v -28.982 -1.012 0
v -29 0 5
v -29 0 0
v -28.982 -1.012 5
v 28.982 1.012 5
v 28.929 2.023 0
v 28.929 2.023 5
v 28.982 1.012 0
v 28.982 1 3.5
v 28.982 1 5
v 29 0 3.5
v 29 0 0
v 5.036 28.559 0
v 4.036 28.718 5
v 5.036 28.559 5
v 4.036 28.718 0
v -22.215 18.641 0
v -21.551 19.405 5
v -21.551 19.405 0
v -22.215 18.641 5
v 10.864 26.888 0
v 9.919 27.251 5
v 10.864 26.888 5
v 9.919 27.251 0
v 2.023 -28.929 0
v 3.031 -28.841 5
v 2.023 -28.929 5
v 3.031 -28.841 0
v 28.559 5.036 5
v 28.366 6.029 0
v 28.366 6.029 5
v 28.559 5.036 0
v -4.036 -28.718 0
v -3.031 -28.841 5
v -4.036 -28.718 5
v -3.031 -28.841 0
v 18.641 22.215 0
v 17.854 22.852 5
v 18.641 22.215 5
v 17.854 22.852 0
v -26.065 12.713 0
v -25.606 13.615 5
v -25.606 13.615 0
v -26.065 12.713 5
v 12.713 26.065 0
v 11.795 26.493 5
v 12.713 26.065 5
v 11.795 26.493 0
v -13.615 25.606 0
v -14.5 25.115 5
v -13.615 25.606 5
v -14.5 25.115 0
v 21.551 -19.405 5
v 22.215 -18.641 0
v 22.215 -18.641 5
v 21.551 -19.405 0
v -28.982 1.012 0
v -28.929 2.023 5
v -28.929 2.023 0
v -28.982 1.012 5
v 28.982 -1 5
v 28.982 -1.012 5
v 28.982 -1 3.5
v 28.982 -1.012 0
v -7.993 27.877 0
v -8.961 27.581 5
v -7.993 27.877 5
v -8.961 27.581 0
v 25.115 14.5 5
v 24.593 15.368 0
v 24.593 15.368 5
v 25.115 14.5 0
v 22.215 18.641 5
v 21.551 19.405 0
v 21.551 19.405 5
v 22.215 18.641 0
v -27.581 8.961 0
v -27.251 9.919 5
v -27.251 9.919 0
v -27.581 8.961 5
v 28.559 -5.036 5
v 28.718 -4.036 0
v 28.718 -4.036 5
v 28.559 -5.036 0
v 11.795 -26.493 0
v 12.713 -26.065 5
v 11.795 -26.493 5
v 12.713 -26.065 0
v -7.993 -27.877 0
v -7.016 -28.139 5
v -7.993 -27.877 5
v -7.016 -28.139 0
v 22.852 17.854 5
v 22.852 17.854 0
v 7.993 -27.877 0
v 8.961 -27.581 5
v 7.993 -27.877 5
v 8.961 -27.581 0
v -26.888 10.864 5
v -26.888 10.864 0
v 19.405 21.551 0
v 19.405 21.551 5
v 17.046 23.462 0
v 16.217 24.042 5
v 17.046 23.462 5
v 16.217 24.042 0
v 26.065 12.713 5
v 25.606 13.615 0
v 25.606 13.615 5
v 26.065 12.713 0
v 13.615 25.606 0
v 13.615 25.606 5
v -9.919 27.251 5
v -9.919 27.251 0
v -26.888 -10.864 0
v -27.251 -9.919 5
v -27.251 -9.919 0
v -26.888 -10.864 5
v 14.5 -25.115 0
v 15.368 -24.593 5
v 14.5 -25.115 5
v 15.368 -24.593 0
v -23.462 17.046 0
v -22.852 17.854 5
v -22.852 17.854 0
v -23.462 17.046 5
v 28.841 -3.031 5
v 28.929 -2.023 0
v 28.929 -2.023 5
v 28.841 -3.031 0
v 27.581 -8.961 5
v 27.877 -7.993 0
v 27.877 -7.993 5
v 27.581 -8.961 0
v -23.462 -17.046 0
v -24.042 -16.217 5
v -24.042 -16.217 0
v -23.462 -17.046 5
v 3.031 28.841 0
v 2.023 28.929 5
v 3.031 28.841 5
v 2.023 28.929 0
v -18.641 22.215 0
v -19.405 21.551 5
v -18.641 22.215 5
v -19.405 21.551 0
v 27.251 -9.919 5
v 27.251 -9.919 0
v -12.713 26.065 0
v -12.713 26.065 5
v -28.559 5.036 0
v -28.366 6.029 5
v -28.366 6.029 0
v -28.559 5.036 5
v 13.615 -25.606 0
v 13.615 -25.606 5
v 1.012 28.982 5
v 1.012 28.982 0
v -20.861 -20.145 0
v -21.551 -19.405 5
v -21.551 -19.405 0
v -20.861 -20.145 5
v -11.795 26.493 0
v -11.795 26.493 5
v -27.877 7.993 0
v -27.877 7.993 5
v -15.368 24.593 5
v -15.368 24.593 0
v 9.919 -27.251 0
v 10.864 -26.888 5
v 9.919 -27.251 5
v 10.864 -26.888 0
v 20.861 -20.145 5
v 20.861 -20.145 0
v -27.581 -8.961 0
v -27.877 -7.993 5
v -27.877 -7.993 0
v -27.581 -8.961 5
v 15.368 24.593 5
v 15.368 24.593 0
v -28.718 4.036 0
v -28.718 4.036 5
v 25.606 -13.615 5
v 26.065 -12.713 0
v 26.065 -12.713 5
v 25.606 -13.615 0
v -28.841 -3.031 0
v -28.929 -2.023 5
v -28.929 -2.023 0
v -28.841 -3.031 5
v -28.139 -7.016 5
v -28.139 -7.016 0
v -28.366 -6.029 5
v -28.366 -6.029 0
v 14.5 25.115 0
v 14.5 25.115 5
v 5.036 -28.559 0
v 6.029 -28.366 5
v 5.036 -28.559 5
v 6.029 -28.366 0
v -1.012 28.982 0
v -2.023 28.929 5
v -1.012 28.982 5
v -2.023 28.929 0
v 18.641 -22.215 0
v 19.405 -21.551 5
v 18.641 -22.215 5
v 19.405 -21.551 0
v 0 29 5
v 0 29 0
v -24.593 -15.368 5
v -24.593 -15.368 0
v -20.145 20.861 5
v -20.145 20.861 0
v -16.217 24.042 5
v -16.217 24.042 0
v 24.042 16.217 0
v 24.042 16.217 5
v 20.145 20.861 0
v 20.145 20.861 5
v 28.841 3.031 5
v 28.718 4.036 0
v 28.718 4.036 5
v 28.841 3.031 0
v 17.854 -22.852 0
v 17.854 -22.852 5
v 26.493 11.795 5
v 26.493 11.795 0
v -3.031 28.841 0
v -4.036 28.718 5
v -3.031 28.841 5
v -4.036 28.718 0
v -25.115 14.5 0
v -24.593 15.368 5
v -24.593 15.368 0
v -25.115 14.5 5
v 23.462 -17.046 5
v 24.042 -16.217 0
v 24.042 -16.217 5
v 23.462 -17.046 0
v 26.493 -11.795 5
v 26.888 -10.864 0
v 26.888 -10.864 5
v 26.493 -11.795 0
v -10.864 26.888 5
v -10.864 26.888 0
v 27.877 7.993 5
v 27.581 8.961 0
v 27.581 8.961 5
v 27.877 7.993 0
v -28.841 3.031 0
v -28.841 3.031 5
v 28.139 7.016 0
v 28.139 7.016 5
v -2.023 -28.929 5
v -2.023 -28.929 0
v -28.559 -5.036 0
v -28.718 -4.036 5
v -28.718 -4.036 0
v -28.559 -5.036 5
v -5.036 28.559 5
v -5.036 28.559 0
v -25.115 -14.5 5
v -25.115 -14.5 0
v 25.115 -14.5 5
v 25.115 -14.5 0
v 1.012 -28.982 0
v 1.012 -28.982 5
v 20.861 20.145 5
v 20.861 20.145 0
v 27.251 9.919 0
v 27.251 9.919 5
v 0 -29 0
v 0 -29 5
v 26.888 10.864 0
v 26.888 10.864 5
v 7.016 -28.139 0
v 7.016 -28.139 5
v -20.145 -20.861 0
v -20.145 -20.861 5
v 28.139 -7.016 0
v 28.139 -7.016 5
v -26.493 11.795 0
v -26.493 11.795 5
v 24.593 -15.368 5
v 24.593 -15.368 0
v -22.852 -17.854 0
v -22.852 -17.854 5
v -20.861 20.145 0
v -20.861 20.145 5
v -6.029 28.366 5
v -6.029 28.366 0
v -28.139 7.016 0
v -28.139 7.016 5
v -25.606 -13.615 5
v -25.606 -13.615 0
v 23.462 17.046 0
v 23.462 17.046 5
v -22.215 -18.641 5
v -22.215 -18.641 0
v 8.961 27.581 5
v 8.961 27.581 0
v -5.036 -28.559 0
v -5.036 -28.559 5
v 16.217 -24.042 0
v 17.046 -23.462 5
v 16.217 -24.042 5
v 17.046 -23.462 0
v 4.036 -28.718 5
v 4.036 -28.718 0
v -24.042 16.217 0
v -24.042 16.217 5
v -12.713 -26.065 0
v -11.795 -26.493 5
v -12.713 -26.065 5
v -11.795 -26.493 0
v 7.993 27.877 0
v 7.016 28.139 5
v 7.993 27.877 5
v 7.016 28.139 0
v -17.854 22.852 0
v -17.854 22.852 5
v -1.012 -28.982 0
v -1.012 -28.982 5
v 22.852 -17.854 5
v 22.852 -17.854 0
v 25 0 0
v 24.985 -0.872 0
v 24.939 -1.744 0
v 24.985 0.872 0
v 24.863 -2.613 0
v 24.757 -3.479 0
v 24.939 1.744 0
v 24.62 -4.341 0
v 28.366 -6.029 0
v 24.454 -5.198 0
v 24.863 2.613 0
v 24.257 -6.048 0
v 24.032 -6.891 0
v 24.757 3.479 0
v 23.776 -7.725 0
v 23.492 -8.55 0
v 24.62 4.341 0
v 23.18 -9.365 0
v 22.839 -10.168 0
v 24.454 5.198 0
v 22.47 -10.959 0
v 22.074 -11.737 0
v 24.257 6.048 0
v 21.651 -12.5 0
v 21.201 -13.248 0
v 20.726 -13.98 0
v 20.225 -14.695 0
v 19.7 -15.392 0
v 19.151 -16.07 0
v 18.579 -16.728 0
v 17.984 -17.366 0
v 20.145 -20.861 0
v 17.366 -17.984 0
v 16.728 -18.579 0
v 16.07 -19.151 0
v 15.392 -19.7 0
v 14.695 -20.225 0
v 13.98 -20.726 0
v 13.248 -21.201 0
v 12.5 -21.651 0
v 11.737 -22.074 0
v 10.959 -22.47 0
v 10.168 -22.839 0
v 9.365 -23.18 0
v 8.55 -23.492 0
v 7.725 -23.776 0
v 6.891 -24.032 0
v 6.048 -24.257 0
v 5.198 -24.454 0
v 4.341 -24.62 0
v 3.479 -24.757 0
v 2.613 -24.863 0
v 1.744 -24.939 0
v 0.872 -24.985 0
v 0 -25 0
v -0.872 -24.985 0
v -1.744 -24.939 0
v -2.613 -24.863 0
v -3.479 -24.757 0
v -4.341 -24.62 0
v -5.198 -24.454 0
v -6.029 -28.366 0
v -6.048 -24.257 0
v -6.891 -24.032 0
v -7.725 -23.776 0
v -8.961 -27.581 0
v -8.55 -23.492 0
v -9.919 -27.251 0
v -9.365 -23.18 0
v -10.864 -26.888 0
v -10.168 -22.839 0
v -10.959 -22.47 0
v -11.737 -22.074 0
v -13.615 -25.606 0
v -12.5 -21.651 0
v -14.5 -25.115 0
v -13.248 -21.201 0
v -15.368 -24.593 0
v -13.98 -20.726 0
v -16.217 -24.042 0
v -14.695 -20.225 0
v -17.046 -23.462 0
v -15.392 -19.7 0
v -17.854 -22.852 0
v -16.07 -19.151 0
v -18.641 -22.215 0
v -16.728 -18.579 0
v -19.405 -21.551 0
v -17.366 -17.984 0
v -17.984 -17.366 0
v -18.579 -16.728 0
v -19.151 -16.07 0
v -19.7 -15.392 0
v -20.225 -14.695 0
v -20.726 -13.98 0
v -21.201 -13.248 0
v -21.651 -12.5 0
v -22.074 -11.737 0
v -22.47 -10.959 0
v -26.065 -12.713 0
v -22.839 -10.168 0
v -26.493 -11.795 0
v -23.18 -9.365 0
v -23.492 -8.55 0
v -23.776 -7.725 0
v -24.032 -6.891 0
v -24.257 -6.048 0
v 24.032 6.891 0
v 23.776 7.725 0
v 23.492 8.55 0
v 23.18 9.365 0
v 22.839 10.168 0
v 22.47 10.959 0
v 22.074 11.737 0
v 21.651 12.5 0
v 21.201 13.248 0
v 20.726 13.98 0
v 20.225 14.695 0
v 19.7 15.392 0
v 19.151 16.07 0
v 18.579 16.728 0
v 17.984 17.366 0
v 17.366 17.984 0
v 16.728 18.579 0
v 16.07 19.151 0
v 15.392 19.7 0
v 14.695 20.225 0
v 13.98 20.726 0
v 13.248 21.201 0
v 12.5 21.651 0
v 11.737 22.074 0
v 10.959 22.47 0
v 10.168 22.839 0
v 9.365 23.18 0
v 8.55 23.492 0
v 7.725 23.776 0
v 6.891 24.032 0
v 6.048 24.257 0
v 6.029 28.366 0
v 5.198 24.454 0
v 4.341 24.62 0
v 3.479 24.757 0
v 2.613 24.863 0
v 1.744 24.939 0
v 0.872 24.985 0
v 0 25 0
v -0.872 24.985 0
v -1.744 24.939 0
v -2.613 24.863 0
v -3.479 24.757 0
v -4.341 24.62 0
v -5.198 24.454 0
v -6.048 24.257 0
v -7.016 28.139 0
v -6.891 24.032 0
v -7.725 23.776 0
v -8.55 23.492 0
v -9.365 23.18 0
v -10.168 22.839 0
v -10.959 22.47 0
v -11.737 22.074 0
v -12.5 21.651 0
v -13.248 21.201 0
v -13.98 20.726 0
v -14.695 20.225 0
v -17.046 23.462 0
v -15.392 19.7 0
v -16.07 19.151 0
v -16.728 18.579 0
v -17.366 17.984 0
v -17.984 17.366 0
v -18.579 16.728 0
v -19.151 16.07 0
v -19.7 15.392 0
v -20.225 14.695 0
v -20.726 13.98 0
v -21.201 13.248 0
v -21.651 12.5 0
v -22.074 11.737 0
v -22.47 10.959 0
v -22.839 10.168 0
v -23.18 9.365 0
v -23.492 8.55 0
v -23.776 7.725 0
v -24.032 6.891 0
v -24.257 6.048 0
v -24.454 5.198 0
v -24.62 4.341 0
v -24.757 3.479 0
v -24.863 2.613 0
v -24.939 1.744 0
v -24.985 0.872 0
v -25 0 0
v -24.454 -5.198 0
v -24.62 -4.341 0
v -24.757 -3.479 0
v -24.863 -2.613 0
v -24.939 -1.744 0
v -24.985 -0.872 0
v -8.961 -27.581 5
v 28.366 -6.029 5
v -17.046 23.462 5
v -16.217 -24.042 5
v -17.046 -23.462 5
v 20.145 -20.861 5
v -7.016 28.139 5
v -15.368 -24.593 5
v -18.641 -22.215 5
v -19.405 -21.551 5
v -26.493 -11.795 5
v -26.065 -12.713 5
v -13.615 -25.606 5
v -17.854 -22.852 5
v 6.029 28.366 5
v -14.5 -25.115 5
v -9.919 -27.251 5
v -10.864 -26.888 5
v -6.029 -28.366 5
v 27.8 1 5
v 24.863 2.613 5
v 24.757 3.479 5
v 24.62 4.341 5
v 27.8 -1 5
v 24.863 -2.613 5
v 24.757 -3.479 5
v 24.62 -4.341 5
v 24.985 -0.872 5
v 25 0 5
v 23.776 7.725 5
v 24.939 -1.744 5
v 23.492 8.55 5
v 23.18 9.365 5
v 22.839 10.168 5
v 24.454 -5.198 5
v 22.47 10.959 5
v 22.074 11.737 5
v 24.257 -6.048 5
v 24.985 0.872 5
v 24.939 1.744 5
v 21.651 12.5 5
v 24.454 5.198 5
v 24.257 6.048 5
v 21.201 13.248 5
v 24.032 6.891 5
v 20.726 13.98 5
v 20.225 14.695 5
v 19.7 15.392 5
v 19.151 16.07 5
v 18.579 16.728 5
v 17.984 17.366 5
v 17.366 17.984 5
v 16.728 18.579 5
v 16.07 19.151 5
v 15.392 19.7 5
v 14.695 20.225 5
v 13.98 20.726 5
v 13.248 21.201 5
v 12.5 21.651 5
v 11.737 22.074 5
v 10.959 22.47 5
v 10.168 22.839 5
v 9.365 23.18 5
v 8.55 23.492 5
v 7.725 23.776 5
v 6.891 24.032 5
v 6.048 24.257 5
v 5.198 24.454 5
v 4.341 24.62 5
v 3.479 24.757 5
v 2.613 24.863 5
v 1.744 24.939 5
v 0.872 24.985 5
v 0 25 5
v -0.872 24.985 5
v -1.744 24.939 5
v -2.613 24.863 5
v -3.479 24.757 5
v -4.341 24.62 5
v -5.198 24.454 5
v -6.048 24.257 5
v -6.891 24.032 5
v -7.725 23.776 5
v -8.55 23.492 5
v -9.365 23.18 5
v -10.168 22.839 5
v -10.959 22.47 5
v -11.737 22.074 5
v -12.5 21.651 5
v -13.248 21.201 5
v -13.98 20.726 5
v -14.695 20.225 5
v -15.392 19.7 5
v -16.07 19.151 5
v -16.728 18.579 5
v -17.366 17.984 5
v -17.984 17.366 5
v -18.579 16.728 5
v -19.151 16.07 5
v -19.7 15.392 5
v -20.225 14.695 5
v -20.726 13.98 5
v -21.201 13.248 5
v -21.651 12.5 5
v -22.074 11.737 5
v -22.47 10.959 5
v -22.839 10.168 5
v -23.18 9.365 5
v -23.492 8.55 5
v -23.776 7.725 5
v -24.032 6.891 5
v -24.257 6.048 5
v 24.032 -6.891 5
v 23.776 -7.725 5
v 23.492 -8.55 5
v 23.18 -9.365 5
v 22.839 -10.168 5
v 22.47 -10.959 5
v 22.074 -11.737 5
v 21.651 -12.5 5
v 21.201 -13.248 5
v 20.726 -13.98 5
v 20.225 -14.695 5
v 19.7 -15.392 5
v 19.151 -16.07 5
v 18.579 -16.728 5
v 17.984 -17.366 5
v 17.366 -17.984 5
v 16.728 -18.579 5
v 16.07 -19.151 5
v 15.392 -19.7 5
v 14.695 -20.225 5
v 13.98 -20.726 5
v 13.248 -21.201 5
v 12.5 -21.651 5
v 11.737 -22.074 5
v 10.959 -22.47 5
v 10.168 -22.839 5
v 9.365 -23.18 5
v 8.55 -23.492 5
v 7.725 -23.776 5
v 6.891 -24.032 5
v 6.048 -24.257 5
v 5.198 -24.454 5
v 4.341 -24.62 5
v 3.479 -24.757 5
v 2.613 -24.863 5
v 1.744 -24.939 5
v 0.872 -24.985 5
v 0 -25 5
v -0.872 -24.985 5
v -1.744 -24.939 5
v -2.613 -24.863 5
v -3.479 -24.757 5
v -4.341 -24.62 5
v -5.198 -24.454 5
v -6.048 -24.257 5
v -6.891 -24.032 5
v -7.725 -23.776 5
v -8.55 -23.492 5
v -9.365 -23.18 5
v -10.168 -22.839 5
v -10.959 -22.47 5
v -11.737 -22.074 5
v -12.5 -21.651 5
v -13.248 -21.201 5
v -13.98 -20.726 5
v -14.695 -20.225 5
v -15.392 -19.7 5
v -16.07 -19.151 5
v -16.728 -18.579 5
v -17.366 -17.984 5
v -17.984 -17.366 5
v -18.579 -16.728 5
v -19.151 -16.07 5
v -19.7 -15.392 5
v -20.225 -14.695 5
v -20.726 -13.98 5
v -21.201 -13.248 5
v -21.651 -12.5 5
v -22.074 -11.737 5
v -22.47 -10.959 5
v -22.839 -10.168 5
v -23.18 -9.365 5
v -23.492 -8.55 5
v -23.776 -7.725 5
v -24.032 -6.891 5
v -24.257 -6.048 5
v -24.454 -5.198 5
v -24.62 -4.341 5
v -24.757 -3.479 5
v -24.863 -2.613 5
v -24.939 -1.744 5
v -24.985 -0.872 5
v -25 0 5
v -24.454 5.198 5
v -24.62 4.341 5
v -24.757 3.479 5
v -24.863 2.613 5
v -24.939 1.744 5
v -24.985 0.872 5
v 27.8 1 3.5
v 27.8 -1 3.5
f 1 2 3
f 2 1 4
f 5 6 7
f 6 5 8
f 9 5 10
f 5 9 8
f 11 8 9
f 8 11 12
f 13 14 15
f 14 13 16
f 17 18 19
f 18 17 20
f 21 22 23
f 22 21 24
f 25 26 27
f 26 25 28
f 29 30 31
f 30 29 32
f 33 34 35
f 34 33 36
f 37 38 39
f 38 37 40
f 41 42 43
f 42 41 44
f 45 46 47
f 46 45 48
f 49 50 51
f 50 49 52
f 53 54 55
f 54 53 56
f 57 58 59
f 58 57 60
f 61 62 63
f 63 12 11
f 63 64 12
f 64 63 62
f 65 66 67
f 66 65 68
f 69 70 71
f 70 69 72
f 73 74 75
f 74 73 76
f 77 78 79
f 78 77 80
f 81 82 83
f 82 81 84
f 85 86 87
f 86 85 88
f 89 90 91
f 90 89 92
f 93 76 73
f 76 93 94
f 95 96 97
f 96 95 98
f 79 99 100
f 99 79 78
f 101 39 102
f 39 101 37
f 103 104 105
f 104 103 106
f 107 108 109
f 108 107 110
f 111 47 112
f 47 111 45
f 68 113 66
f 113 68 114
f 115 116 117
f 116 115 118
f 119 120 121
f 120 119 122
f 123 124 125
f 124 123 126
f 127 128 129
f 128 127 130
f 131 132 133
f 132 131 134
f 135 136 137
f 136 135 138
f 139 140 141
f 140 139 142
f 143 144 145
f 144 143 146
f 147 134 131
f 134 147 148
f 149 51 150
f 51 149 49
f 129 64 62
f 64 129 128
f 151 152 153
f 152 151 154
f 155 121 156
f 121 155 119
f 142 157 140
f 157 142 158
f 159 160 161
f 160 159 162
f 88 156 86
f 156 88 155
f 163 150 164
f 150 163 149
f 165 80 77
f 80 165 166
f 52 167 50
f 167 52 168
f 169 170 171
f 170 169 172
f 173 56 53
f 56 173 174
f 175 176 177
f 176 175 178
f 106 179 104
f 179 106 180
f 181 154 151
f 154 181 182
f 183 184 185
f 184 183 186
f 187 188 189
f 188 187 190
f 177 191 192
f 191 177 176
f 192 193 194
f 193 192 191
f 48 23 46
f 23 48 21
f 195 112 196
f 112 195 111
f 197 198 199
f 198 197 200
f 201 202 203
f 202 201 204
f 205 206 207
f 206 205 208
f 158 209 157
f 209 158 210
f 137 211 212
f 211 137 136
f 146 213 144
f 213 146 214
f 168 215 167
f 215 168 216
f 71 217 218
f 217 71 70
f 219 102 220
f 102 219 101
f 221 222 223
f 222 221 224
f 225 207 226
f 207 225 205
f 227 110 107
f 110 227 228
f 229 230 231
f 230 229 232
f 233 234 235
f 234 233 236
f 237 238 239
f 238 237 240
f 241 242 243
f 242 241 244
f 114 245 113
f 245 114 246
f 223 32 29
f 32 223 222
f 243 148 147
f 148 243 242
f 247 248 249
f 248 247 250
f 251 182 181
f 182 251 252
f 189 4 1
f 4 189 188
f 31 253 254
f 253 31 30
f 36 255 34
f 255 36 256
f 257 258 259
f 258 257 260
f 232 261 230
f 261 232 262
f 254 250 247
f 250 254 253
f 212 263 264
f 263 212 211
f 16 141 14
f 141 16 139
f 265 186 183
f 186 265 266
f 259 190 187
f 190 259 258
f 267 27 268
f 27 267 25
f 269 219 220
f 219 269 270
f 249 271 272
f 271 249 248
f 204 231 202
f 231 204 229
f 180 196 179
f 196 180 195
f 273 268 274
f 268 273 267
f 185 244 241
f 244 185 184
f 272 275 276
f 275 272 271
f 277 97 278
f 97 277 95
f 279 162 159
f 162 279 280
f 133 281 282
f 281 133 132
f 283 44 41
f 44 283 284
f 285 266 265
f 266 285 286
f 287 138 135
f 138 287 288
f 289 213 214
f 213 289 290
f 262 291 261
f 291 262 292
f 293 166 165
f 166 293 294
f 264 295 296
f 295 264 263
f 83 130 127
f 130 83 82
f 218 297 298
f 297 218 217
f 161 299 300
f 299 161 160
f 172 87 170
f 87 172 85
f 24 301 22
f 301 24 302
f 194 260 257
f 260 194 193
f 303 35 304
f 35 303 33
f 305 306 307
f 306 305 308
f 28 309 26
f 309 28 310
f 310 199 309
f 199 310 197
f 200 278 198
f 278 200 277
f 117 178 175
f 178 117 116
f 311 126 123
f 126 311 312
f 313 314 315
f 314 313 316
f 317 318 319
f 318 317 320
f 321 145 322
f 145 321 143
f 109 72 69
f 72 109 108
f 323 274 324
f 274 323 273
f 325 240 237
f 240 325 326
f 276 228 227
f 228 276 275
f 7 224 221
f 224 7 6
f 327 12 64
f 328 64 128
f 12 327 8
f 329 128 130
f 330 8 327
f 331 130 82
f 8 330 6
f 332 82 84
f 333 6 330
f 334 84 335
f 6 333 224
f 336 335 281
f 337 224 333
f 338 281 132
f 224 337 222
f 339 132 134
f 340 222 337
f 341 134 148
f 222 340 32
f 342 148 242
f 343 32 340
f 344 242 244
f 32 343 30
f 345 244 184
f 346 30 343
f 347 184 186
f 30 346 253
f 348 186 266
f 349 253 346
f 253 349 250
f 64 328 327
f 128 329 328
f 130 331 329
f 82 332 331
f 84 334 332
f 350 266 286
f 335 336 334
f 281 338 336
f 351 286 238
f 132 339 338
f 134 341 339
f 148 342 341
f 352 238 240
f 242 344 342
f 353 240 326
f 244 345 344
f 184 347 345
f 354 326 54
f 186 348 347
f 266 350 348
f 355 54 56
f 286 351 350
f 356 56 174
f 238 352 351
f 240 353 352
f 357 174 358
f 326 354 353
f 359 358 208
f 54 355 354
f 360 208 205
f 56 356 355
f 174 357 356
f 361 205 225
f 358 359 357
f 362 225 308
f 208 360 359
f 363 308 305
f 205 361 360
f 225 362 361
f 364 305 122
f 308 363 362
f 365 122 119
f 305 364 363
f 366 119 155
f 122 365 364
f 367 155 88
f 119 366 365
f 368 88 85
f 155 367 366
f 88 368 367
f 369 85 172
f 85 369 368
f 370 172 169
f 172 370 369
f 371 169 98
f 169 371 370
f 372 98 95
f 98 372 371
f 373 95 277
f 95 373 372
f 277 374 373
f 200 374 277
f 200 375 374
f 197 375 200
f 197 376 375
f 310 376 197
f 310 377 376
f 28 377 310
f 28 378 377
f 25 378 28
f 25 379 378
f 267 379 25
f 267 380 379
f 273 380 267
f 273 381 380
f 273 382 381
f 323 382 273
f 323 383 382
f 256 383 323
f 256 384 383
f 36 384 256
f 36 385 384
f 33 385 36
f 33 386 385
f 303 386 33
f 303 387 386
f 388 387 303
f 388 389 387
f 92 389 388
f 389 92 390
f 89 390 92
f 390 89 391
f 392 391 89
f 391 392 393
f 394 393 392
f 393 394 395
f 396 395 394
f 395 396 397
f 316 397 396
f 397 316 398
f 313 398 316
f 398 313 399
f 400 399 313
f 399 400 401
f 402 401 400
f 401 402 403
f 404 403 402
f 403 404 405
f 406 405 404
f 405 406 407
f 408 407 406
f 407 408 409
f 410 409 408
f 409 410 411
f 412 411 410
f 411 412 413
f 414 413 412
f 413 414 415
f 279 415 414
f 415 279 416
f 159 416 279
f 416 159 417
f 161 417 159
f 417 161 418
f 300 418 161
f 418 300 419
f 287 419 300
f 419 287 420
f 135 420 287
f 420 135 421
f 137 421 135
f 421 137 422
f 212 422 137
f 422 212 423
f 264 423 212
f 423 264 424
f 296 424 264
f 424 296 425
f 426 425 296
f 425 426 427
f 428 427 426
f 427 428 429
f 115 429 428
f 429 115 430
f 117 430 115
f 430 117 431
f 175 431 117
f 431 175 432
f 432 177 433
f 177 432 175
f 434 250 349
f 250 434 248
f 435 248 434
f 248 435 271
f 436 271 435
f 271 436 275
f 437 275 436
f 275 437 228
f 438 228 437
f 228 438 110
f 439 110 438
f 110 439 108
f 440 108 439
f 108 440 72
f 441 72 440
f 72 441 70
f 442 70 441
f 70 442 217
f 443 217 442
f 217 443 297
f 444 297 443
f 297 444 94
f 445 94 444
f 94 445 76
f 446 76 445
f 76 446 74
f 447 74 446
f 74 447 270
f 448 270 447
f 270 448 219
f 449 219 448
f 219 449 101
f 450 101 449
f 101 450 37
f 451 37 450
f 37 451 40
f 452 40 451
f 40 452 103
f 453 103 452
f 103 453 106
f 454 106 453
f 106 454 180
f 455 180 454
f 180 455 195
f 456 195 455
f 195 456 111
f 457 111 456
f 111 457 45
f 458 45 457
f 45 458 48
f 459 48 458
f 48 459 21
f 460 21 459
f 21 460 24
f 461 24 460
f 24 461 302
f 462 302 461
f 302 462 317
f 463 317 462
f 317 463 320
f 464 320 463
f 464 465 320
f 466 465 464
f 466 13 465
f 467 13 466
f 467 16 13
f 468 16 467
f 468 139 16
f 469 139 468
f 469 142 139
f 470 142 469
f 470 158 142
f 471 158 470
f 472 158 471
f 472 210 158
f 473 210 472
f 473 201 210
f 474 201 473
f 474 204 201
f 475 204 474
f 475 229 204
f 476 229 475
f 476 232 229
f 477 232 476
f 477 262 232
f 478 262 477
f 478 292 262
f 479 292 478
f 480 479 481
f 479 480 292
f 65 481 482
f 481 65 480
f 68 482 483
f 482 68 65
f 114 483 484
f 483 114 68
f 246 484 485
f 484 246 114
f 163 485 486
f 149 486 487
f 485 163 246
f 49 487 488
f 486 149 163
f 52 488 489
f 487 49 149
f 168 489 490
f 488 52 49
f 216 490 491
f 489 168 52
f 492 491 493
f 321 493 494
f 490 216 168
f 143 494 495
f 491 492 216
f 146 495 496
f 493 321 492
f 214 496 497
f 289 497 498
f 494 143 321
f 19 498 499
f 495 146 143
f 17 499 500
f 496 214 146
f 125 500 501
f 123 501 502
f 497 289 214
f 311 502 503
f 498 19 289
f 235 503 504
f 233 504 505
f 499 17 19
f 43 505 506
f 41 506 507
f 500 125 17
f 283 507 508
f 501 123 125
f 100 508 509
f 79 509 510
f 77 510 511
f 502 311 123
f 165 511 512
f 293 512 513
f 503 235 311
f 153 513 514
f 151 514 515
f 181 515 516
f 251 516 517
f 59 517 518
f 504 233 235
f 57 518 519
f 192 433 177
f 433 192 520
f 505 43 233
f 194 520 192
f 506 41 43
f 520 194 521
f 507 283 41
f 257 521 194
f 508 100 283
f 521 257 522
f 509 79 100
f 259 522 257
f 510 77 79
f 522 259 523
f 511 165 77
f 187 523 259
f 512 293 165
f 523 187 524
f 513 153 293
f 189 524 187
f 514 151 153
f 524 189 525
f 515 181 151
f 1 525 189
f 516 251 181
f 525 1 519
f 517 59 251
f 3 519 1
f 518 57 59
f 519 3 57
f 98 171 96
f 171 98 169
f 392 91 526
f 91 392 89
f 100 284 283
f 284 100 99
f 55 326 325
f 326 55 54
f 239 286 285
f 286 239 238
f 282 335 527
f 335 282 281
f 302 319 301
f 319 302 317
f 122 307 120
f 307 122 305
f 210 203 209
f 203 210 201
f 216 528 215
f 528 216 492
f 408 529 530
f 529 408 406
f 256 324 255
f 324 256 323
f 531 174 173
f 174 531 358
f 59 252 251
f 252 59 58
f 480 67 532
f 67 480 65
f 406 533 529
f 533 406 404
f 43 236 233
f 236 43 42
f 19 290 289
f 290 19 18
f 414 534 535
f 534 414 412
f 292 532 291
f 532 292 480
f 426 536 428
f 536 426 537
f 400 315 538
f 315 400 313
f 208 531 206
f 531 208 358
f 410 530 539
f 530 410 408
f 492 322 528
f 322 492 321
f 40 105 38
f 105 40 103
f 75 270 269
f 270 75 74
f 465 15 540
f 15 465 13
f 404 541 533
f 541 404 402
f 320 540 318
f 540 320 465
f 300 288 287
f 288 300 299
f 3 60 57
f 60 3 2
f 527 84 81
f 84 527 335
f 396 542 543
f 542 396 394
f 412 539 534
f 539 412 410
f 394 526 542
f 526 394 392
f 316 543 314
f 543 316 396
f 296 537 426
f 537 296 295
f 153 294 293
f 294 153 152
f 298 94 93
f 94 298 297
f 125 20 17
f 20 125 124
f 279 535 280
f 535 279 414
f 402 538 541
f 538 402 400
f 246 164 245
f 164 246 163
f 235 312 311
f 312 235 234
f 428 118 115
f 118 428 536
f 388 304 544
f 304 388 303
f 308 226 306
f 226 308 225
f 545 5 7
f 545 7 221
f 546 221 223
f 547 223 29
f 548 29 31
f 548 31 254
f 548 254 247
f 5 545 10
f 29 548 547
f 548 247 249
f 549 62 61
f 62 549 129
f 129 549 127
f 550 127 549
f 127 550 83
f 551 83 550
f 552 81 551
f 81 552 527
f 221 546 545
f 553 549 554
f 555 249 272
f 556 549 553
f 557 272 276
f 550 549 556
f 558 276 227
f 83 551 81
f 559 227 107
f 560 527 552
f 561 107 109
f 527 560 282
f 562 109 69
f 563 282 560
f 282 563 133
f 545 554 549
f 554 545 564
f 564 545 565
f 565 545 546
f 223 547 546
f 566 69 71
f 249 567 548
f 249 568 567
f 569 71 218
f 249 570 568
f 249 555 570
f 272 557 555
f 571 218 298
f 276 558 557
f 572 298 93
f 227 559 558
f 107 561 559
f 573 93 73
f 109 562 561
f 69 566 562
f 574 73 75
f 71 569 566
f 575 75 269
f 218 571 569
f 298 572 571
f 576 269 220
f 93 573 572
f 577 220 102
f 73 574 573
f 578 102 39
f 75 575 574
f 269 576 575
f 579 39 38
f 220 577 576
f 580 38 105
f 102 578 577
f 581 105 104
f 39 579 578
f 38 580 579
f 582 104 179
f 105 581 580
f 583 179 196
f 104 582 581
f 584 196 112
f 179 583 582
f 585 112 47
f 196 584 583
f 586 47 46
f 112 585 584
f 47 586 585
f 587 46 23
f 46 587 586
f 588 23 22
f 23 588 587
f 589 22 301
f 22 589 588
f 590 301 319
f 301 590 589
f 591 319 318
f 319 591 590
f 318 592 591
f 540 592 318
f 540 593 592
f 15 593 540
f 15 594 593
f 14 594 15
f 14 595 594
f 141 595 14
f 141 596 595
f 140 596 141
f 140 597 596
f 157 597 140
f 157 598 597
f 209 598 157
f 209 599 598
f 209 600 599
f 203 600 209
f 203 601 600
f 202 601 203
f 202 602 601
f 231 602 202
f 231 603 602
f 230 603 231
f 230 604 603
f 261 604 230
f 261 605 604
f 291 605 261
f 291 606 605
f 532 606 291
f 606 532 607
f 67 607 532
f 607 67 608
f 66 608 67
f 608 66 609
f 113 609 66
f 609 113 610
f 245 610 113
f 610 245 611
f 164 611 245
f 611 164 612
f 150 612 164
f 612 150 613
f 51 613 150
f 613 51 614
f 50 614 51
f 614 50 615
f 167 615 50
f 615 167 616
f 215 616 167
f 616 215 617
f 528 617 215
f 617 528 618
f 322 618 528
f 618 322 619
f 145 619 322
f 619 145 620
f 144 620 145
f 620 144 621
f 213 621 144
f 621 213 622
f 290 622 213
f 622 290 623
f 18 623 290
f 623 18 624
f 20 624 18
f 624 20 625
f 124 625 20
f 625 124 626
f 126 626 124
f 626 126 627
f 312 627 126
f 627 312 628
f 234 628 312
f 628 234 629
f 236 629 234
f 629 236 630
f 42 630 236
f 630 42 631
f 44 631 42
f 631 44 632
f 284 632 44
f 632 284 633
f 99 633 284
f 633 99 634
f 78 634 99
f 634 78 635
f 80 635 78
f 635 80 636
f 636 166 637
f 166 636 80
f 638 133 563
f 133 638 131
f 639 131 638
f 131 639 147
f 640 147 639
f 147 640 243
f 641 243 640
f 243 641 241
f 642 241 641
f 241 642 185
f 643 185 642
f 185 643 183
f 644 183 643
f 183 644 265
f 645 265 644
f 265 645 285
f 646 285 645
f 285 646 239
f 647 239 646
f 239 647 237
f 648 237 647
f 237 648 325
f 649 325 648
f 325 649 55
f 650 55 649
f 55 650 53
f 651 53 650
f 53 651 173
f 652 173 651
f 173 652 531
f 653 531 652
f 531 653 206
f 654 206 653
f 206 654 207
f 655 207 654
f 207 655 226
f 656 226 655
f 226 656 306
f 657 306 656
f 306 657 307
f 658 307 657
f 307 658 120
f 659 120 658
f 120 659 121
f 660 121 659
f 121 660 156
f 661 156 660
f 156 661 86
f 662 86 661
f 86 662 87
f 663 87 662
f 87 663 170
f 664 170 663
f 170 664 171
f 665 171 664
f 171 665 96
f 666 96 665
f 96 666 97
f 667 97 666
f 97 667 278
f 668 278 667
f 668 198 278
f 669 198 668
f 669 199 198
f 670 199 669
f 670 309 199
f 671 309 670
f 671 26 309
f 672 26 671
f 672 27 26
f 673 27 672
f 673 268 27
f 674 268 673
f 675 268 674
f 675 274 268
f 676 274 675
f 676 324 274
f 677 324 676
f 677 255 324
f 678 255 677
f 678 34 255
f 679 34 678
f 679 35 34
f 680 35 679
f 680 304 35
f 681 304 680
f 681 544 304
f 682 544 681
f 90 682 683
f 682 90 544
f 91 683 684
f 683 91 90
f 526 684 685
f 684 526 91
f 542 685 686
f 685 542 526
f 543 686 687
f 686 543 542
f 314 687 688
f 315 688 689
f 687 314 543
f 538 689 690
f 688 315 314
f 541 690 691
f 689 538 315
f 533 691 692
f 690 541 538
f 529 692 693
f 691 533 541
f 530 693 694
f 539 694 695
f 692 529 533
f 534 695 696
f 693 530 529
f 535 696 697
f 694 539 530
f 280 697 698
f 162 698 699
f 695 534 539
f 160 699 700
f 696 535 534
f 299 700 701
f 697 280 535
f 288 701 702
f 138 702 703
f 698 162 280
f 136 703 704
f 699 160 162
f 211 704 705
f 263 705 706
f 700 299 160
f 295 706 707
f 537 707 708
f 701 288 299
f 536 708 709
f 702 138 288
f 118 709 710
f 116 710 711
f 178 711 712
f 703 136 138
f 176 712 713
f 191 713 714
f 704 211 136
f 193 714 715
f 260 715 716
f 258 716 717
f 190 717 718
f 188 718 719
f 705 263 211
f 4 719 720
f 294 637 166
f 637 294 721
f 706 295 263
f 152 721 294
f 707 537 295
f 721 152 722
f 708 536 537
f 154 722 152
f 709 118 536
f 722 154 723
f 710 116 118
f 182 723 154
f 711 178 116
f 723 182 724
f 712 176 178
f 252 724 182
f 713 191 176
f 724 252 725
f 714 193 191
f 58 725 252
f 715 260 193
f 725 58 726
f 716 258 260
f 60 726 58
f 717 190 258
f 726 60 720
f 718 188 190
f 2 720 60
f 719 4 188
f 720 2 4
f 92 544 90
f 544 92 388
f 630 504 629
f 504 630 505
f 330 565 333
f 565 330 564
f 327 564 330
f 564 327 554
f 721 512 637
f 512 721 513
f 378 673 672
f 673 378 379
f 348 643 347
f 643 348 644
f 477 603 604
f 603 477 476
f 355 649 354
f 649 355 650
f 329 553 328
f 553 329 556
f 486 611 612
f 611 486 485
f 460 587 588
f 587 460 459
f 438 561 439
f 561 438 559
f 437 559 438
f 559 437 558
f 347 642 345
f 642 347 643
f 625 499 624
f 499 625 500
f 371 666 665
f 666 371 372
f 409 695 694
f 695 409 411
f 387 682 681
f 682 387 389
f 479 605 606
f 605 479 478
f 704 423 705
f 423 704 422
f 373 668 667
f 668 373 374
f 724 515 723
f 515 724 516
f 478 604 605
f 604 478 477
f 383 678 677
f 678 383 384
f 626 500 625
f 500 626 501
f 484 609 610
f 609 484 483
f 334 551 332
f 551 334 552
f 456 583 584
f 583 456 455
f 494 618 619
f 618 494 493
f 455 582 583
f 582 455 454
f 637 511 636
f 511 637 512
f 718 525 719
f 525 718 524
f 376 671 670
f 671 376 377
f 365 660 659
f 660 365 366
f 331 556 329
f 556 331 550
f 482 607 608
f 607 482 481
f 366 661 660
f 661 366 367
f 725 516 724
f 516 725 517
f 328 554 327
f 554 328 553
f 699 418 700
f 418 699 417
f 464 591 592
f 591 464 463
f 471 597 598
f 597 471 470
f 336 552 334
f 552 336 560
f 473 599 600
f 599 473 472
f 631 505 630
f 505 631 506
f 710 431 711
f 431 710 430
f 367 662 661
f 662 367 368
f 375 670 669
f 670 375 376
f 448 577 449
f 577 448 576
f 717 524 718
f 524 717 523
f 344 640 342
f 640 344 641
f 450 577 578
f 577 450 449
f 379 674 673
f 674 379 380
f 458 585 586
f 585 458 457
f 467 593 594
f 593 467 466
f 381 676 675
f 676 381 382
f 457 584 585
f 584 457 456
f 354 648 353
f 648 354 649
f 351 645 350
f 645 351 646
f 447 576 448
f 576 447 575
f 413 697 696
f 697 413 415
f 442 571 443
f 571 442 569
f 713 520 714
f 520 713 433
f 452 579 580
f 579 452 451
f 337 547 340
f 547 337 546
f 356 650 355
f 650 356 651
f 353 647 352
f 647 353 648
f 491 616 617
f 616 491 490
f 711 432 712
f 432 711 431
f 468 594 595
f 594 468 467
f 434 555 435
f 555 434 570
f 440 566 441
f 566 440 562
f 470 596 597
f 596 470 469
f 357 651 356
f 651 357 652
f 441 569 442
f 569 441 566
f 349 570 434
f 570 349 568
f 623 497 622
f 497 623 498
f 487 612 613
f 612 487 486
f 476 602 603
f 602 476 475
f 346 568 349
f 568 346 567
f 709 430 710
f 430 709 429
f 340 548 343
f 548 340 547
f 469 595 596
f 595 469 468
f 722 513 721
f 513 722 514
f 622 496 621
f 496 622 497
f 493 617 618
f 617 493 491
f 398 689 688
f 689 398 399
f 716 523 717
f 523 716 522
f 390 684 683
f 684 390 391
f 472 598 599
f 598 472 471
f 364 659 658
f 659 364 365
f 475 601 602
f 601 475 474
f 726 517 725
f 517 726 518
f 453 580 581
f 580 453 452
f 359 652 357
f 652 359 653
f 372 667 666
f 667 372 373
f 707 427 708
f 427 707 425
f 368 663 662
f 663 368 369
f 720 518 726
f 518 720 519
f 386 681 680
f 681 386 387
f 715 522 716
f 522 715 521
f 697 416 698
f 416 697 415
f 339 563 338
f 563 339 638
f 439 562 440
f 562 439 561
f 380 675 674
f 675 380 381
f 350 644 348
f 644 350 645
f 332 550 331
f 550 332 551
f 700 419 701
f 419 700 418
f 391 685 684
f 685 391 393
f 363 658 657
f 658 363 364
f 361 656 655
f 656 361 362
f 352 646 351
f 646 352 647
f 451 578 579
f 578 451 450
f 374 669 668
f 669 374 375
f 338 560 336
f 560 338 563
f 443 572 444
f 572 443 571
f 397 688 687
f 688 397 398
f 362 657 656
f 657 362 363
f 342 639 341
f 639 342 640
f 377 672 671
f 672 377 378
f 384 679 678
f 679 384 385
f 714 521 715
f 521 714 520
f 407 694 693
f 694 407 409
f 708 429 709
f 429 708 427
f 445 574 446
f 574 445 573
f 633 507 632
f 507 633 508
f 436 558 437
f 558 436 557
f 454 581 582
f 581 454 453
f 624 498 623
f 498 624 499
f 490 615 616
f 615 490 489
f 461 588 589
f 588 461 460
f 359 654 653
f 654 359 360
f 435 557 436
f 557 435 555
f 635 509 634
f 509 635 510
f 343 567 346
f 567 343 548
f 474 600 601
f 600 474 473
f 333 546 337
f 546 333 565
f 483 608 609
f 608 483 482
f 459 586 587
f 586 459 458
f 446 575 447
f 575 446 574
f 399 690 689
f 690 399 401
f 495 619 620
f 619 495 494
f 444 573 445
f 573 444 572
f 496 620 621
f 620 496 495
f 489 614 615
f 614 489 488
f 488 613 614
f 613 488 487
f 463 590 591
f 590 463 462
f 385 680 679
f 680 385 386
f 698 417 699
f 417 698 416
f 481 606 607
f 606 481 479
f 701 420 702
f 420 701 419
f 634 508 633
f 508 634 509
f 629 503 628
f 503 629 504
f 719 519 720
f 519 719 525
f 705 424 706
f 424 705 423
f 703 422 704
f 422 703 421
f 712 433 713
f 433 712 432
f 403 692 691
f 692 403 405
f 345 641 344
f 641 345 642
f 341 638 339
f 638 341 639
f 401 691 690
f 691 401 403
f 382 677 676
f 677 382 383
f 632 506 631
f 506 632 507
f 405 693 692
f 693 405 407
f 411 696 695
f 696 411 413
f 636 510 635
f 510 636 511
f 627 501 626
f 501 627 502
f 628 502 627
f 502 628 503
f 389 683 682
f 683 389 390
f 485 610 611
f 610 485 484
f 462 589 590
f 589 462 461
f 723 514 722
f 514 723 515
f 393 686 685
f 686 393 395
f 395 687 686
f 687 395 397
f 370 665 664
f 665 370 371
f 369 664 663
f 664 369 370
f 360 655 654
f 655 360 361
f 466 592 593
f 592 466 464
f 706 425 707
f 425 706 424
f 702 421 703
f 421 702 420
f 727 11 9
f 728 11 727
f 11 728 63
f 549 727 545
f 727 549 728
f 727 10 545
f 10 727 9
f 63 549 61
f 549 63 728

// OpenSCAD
// Test rings to find the right hole size for the 45 mm pole.
// One 50 mm ring (one notch on the outside edge).
// Print in PLA, 0.2 mm layers, no supports. Slide it onto the pole:
// it should slide on easily without wobbling.

holes  = [50.0];             // inner diameter, mm
wall   = 4;                  // ring wall thickness, mm
height = 5;                  // ring height, mm
gap    = 8;                  // space between rings, mm
$fn    = 180;

module ring(d, notches) {
  difference() {
    cylinder(h = height, d = d + 2 * wall);
    translate([0, 0, -1]) cylinder(h = height + 2, d = d);
    // Notches on the outside edge to tell the rings apart.
    for (i = [0 : notches - 1])
      rotate([0, 0, i * 12])
        translate([d / 2 + wall - 1.2, -1, height - 1.5]) cube([2, 2, 2]);
  }
}

for (i = [0 : len(holes) - 1])
  translate([i * (holes[i] + 2 * wall + gap), 0, 0]) ring(holes[i], i + 1);
